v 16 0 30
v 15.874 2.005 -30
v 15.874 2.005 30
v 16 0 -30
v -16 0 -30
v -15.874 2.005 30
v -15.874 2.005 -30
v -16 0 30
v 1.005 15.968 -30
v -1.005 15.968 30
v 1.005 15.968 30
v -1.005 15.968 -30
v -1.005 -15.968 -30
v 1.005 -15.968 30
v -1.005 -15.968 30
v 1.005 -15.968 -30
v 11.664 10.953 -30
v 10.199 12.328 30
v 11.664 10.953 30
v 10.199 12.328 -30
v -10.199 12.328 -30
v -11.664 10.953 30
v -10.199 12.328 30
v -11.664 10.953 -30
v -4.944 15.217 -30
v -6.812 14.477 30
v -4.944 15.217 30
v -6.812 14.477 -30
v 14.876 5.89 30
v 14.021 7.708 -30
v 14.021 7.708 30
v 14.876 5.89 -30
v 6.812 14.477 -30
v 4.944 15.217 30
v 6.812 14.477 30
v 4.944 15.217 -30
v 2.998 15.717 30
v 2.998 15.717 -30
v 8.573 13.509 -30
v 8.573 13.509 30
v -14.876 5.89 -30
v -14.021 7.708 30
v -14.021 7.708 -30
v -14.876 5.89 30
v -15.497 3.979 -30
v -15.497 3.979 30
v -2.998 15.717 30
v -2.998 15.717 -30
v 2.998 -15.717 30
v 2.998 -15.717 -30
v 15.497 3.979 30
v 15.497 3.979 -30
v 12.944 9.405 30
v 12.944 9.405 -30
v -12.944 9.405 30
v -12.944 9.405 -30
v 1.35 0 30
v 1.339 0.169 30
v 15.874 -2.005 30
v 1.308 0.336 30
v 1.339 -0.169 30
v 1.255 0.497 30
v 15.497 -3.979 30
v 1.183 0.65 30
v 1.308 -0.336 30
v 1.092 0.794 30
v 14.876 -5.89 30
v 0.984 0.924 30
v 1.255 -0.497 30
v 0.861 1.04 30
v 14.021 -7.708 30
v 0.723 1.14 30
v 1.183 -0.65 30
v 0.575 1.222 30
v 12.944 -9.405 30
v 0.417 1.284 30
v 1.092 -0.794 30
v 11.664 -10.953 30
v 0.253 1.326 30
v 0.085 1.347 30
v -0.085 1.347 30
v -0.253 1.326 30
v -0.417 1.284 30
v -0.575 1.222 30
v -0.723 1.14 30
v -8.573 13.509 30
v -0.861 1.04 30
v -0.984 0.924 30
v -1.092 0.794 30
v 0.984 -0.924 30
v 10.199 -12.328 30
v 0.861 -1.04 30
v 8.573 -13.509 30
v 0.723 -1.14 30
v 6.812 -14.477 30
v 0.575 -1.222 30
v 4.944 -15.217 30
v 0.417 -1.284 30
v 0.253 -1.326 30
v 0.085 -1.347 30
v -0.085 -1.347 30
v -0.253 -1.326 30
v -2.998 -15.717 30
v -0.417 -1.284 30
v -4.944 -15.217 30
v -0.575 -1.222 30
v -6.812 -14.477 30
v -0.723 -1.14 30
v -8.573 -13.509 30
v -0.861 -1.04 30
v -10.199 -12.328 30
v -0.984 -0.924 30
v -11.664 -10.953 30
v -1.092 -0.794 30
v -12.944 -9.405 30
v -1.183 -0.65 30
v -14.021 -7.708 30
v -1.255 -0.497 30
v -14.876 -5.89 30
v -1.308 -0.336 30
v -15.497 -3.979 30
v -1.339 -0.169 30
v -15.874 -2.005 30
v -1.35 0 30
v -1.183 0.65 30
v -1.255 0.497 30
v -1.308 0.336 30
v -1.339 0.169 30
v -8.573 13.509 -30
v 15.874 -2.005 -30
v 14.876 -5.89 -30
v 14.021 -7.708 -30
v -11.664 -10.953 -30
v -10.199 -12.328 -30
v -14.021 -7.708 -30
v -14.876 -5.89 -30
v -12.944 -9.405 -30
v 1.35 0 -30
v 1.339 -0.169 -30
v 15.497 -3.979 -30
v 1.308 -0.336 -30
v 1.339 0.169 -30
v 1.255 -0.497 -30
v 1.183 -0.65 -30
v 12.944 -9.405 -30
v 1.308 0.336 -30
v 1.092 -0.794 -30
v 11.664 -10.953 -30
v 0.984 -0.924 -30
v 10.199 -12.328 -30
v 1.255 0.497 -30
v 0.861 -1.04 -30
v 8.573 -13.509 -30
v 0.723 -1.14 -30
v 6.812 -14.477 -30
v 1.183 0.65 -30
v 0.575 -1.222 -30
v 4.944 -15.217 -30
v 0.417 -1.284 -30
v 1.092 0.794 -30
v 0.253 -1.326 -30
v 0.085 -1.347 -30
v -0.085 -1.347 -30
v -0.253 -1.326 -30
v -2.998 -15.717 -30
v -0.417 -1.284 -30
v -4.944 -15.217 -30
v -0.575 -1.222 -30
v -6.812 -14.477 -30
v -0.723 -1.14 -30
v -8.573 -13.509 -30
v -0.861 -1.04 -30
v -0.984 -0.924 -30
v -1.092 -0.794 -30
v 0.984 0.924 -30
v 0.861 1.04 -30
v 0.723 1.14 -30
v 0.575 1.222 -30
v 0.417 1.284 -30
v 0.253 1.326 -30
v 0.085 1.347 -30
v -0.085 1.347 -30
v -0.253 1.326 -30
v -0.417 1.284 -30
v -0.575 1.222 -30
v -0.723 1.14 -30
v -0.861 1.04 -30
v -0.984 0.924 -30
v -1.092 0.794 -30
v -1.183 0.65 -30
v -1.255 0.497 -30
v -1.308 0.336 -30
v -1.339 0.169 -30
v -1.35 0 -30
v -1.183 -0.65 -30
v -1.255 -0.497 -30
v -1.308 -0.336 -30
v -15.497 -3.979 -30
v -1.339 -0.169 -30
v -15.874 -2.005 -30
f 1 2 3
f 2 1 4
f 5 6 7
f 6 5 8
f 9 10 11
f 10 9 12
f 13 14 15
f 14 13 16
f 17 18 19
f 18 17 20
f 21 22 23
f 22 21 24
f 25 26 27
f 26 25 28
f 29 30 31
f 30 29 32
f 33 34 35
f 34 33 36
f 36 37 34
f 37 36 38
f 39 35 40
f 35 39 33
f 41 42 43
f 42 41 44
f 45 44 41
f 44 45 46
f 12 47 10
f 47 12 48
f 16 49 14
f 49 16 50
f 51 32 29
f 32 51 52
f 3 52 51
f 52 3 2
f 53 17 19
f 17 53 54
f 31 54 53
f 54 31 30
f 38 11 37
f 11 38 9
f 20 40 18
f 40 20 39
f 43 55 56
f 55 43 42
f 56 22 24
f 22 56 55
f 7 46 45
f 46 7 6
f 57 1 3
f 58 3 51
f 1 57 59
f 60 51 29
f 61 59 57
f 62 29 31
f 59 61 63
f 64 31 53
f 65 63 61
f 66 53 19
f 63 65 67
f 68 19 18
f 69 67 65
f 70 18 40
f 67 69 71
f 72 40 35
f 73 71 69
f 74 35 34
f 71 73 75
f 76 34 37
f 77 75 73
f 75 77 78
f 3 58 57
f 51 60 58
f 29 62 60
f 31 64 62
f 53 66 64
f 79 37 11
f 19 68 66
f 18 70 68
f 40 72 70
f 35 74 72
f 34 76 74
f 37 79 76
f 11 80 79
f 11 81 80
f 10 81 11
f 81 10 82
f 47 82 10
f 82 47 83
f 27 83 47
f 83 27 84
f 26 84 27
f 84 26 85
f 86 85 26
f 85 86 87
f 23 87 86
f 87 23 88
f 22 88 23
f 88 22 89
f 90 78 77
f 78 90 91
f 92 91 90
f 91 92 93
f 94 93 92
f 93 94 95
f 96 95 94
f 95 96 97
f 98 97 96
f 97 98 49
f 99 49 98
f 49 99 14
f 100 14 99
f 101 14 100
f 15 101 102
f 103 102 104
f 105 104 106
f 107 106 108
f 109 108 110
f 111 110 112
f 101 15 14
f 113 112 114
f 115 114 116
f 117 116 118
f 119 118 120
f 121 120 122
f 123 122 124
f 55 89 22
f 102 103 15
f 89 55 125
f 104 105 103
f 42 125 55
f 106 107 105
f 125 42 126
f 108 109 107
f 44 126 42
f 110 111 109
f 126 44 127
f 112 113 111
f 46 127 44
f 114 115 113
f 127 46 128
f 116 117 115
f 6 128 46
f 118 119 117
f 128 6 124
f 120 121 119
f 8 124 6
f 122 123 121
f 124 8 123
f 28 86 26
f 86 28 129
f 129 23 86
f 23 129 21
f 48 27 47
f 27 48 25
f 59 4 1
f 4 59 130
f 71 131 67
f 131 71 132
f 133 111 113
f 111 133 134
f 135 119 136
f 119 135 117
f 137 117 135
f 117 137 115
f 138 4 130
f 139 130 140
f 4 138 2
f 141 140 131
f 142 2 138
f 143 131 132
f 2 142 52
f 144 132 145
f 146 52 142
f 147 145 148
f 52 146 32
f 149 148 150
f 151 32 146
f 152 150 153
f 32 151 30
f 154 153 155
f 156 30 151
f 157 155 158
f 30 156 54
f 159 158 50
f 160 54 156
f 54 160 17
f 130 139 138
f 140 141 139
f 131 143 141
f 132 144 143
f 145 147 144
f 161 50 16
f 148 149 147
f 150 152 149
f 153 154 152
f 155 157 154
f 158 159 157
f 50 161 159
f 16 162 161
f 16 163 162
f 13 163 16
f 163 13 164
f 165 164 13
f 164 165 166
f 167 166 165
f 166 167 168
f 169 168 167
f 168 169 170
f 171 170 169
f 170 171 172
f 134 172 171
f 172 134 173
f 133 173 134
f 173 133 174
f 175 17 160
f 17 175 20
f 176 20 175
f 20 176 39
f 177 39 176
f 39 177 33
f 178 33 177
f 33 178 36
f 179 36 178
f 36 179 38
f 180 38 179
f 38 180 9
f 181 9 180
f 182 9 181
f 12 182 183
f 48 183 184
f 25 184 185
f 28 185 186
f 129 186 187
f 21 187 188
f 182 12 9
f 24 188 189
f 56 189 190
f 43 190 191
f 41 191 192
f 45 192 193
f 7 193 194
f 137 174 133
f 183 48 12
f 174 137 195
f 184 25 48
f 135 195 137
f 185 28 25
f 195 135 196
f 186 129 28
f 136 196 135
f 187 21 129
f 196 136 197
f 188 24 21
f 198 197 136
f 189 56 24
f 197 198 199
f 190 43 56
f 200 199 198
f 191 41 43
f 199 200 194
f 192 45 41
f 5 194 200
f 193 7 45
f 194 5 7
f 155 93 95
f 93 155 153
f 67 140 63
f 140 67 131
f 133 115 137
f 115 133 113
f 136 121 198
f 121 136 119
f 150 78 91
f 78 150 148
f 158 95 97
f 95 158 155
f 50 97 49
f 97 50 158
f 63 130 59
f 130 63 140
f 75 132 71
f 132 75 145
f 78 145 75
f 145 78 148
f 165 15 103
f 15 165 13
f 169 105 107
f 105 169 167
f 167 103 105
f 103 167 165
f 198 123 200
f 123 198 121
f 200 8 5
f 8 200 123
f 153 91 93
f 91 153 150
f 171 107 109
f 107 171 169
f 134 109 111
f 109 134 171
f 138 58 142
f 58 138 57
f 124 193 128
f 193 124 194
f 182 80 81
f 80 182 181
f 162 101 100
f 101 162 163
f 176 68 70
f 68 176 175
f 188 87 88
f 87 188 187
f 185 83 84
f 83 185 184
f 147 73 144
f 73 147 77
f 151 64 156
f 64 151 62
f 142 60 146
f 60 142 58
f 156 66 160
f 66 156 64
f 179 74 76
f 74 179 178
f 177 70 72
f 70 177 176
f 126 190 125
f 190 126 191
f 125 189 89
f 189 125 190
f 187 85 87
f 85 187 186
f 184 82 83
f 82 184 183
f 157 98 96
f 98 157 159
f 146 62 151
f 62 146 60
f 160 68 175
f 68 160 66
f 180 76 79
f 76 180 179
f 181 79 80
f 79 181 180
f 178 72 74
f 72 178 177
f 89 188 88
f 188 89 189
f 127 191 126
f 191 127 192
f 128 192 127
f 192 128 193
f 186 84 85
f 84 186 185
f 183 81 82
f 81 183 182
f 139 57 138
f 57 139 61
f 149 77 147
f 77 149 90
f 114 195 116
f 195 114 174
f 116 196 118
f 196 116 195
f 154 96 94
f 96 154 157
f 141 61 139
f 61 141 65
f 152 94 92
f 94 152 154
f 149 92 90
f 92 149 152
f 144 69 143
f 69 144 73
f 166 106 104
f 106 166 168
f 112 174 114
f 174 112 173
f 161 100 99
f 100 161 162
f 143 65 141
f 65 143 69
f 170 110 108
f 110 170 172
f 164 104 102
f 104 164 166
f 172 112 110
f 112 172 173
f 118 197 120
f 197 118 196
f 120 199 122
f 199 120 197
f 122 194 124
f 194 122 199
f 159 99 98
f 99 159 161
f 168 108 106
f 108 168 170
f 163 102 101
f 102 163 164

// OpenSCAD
$fn = 50;


difference() {
	union() {
		translate(v = [0, 0, -30.0000000000]) {
			cylinder(h = 60, r = 16.0000000000);
		}
	}
	union() {
		translate(v = [0, 0, -100.0000000000]) {
			cylinder(h = 200, r = 1.3500000000);
		}
	}
}
